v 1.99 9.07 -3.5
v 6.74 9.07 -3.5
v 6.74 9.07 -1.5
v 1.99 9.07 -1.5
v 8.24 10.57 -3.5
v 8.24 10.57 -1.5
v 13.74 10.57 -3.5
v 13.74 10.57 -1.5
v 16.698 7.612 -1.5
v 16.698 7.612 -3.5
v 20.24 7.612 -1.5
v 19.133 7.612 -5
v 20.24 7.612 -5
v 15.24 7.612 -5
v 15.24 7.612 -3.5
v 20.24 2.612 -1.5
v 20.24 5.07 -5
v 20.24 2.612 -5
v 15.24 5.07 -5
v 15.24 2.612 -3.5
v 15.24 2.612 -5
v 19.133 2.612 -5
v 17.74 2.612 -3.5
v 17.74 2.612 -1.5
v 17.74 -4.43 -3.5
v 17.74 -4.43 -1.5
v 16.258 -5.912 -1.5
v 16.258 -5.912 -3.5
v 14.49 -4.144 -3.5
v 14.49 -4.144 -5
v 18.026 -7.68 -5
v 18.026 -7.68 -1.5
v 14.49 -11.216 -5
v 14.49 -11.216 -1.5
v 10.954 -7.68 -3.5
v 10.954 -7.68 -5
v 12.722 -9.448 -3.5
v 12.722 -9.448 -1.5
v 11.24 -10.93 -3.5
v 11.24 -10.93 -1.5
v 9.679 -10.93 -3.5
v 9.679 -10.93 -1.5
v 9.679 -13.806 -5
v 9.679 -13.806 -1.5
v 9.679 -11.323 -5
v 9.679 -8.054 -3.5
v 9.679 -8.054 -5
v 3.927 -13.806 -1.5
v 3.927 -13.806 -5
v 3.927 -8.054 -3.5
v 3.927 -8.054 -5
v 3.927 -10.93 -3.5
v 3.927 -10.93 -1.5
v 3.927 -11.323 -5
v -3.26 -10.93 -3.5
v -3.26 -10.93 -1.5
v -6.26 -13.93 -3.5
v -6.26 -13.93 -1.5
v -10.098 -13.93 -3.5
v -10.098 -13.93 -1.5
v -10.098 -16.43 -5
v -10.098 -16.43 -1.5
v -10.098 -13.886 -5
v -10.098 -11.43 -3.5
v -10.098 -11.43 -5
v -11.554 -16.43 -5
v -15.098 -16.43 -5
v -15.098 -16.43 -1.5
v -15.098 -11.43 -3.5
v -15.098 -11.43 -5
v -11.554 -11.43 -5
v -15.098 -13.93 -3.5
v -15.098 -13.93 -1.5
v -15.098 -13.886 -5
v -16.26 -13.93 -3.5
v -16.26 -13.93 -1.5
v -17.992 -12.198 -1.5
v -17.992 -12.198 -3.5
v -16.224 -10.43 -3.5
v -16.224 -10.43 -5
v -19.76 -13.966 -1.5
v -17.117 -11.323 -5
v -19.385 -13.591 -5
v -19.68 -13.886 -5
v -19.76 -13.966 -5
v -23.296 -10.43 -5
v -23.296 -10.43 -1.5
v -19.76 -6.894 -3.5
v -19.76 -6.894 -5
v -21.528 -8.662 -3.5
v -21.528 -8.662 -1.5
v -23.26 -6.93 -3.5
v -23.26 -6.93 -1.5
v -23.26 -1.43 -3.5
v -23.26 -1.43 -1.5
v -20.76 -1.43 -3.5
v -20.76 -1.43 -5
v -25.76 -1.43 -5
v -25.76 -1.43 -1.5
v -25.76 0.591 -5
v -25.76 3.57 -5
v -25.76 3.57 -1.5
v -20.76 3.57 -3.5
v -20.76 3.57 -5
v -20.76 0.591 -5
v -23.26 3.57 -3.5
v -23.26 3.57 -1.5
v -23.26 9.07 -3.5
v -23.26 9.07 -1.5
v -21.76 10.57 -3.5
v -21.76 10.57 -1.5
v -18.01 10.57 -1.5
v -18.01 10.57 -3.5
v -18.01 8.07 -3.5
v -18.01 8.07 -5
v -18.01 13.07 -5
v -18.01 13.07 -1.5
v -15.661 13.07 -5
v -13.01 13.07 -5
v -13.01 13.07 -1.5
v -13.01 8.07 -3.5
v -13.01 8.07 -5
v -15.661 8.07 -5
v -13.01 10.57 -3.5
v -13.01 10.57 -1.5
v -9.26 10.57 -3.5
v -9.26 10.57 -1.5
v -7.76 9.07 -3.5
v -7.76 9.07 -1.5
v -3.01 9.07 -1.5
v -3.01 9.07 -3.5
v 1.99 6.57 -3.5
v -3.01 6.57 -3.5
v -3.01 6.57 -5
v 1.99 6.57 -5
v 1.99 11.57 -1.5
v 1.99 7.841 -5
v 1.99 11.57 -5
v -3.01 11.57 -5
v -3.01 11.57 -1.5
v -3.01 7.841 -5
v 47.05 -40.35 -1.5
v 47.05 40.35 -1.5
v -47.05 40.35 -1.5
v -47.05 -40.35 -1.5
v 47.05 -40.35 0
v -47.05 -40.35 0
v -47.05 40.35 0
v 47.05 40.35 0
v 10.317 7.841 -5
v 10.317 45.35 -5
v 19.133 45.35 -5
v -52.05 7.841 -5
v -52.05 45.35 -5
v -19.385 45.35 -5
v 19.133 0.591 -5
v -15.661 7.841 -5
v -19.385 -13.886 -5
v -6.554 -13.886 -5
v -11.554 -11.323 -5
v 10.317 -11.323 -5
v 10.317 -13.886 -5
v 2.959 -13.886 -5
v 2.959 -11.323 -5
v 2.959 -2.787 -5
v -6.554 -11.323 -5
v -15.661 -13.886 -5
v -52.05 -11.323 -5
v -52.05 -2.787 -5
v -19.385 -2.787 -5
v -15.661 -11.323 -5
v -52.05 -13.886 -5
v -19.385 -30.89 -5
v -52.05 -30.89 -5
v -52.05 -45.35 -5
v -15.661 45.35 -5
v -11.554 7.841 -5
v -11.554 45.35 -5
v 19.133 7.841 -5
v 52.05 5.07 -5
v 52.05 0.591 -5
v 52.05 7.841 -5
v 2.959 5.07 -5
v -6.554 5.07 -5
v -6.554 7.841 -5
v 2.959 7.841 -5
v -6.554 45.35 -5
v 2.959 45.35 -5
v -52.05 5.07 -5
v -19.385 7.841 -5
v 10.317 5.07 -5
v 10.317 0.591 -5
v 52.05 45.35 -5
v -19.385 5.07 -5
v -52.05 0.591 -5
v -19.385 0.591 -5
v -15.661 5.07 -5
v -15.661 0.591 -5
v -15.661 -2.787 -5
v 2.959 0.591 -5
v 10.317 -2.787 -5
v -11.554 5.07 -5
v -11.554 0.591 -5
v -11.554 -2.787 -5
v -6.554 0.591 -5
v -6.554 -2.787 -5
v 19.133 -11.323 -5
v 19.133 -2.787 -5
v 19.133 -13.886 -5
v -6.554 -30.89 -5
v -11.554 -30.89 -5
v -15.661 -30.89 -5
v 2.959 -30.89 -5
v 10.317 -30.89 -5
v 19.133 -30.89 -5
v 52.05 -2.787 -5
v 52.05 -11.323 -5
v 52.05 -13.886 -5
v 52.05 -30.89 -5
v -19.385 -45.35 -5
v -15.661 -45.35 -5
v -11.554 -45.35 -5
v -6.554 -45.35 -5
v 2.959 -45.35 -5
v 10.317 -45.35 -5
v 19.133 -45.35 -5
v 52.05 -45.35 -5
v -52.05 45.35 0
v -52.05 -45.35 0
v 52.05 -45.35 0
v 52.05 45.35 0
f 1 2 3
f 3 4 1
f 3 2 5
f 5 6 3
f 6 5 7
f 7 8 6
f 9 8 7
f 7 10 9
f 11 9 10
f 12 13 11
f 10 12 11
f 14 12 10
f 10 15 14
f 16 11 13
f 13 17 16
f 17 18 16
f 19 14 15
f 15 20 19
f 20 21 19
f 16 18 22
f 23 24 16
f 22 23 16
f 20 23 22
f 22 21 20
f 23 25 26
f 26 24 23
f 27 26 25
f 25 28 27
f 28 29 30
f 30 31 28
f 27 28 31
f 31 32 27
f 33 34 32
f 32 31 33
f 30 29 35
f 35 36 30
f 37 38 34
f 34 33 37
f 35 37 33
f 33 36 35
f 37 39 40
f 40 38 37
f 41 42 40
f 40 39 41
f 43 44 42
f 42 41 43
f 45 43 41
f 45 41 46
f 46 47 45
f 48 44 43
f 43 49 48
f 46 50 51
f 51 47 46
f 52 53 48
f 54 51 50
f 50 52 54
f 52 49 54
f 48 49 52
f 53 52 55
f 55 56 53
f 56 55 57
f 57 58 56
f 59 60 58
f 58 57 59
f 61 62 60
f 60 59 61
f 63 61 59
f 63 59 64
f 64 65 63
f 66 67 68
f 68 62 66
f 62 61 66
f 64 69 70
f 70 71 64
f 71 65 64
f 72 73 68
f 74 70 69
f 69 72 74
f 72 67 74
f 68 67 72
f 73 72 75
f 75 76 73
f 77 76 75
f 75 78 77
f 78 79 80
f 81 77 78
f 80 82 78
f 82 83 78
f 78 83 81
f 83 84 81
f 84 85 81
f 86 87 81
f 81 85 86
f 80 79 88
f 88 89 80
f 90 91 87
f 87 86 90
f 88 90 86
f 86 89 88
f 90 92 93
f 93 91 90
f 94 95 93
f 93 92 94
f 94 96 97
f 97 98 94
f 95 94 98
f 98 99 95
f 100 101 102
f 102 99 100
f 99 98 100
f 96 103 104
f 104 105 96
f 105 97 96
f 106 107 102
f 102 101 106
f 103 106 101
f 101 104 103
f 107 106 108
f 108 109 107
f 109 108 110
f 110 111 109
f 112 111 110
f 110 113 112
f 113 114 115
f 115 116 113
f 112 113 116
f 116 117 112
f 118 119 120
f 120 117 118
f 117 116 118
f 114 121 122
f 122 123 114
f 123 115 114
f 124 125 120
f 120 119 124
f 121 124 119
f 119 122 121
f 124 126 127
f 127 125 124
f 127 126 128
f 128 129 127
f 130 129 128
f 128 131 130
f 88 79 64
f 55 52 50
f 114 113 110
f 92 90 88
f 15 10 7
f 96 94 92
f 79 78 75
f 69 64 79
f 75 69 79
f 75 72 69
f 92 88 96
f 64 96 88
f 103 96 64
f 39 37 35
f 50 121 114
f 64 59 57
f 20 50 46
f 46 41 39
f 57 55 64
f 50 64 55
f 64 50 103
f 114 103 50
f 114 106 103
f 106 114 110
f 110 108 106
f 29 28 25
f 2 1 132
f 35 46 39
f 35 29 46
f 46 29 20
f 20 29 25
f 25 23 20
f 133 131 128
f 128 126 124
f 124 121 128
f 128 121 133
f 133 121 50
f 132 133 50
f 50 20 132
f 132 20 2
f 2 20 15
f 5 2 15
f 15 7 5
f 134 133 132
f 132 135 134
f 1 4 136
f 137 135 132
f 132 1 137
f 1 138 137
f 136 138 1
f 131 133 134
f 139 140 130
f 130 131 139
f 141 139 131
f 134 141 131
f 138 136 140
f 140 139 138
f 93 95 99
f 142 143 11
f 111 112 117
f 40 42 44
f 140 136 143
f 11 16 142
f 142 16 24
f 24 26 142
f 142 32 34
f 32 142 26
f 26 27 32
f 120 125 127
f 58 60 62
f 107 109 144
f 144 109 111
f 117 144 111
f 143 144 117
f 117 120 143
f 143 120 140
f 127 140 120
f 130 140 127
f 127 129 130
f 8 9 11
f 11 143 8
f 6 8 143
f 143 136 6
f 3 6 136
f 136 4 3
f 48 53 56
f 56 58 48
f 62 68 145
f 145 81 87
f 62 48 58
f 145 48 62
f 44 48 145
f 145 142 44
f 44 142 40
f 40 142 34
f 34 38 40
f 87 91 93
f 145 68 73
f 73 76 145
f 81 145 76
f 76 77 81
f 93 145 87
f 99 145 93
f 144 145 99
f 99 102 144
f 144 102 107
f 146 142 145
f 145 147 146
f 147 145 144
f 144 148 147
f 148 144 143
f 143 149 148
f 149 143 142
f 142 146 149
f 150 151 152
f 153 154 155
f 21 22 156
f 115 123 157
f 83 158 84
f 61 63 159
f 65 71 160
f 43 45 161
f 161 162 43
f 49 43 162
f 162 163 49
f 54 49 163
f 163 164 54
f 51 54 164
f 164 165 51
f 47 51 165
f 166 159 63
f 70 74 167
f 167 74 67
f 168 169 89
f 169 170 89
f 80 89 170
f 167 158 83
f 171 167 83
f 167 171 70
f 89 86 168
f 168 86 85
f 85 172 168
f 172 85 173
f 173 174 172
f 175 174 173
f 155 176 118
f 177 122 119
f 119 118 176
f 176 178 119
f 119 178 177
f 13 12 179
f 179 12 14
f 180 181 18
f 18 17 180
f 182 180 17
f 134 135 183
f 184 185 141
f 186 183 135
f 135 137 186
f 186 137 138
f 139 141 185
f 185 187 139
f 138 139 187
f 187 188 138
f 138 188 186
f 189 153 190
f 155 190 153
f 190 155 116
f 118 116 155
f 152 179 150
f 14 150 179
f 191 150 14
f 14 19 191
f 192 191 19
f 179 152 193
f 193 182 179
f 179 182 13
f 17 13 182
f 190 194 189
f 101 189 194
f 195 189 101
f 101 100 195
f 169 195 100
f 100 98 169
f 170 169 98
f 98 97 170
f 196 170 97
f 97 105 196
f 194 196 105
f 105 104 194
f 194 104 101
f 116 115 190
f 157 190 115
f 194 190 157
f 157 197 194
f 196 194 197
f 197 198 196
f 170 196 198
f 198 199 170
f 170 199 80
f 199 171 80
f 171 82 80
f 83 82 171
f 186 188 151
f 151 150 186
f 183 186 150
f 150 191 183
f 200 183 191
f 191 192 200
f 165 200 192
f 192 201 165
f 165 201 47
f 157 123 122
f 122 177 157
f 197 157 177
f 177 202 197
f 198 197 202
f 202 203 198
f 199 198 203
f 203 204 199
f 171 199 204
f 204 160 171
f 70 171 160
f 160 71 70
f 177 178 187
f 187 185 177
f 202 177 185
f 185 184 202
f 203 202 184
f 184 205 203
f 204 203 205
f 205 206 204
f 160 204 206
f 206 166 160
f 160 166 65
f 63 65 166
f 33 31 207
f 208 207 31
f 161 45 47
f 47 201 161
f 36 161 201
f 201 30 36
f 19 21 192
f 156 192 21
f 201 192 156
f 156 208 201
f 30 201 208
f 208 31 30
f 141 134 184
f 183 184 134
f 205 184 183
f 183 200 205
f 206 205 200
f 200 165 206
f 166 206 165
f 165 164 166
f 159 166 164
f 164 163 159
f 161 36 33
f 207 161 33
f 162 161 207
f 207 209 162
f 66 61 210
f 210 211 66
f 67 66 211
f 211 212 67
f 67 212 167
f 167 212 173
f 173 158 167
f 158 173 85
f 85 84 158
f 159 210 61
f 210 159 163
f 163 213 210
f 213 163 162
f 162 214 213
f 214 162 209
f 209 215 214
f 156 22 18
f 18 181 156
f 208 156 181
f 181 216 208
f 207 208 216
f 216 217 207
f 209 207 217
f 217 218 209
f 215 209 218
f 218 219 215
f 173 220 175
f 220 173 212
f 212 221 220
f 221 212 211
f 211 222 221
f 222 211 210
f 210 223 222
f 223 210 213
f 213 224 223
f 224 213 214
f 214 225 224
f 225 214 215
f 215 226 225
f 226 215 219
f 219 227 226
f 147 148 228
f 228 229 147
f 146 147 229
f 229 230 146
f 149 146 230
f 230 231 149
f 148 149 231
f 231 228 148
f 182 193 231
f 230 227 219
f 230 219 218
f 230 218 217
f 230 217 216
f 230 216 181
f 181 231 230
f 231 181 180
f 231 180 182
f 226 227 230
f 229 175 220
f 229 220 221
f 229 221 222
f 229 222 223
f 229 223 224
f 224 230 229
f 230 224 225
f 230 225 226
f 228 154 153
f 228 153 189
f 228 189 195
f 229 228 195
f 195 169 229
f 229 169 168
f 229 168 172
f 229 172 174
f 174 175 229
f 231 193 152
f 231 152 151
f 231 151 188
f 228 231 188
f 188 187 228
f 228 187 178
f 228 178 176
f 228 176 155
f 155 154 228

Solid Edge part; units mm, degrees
sketch "Sketch1" plane through (0, 0, 0) normal (0, 0, 1) x (1, 0, 0)
  line L0 (52.05, -45.35) -> (-52.05, -45.35)
  line L1 (-52.05, -45.35) -> (-52.05, 45.35)
  line L2 (-52.05, 45.35) -> (52.05, 45.35)
  line L3 (52.05, 45.35) -> (52.05, -45.35)
extrude "Protrusion1" add sketch "Sketch1" against normal blind 5
sketch "Sketch2" plane through (0, 0, 0) normal (0, 0, 1) x (1, 0, 0)
  line L0 (-47.05, -40.35) -> (-47.05, 40.35)
  line L1 (-47.05, 40.35) -> (47.05, 40.35)
  line L2 (47.05, 40.35) -> (47.05, -40.35)
  line L3 (47.05, -40.35) -> (-47.05, -40.35)
extrude "ExtrudedCutout_1" cut sketch "Sketch2" against normal blind 1.5
sketch "Sketch3" plane through (0, 0, -1.5) normal (0, 0, 1) x (1, 0, 0)
  line L0 (-6.26, -13.93) -> (-16.26, -13.93)
  line L1 (-16.26, -13.93) -> (-23.26, -6.93)
  line L2 (-23.26, -6.93) -> (-23.26, 9.07)
  line L3 (-23.26, 9.07) -> (-21.76, 10.57)
  line L4 (-21.76, 10.57) -> (-9.26, 10.57)
  line L5 (-9.26, 10.57) -> (-7.76, 9.07)
  line L6 (-7.76, 9.07) -> (6.74, 9.07)
  line L7 (6.74, 9.07) -> (8.24, 10.57)
  line L8 (8.24, 10.57) -> (13.74, 10.57)
  line L9 (13.74, 10.57) -> (17.74, 6.57)
  line L10 (17.74, 6.57) -> (17.74, -4.43)
  line L11 (17.74, -4.43) -> (11.24, -10.93)
  line L12 (11.24, -10.93) -> (-3.26, -10.93)
  line L13 (-3.26, -10.93) -> (-6.26, -13.93)
extrude "ExtrudedCutout_2" cut sketch "Sketch3" against normal blind 2
sketch "Sketch4" plane through (0, 0, -1.5) normal (0, 0, 1) x (1, 0, 0)
  line L0 (-20.76, -1.43) -> (-25.76, -1.43)
  line L1 (-25.76, -1.43) -> (-25.76, 3.57)
  line L2 (-25.76, 3.57) -> (-20.76, 3.57)
  line L3 (-20.76, 3.57) -> (-20.76, -1.43)
  line L4 (-19.76, -13.9655) -> (-16.2245, -10.43)
  line L5 (-16.2245, -10.43) -> (-19.76, -6.8945)
  line L6 (-19.76, -6.8945) -> (-23.2955, -10.43)
  line L7 (-23.2955, -10.43) -> (-19.76, -13.9655)
  line L8 (-15.0977, -11.43) -> (-10.0977, -11.43)
  line L9 (-10.0977, -11.43) -> (-10.0977, -16.43)
  line L10 (-10.0977, -16.43) -> (-15.0977, -16.43)
  line L11 (-15.0977, -16.43) -> (-15.0977, -11.43)
  line L12 (-13.01, 8.07) -> (-13.01, 13.07)
  line L13 (-13.01, 13.07) -> (-18.01, 13.07)
  line L14 (-18.01, 13.07) -> (-18.01, 8.07)
  line L15 (-18.01, 8.07) -> (-13.01, 8.07)
  line L16 (9.6793, -8.0539) -> (9.6793, -13.8061)
  line L17 (9.6793, -13.8061) -> (3.927, -13.8061)
  line L18 (3.927, -13.8061) -> (3.927, -8.0539)
  line L19 (3.927, -8.0539) -> (9.6793, -8.0539)
  line L20 (14.49, -11.2155) -> (18.0255, -7.68)
  line L21 (18.0255, -7.68) -> (14.49, -4.1445)
  line L22 (14.49, -4.1445) -> (10.9545, -7.68)
  line L23 (10.9545, -7.68) -> (14.49, -11.2155)
  line L24 (20.24, 2.6121) -> (20.24, 7.6121)
  line L25 (20.24, 7.6121) -> (15.24, 7.6121)
  line L26 (15.24, 7.6121) -> (15.24, 2.6121)
  line L27 (15.24, 2.6121) -> (20.24, 2.6121)
  line L28 (1.99, 11.57) -> (-3.01, 11.57)
  line L29 (-3.01, 11.57) -> (-3.01, 6.57)
  line L30 (-3.01, 6.57) -> (1.99, 6.57)
  line L31 (1.99, 6.57) -> (1.99, 11.57)
  dimension "D1" = 5
extrude "Cutout1" cut sketch "Sketch4" against normal through all
